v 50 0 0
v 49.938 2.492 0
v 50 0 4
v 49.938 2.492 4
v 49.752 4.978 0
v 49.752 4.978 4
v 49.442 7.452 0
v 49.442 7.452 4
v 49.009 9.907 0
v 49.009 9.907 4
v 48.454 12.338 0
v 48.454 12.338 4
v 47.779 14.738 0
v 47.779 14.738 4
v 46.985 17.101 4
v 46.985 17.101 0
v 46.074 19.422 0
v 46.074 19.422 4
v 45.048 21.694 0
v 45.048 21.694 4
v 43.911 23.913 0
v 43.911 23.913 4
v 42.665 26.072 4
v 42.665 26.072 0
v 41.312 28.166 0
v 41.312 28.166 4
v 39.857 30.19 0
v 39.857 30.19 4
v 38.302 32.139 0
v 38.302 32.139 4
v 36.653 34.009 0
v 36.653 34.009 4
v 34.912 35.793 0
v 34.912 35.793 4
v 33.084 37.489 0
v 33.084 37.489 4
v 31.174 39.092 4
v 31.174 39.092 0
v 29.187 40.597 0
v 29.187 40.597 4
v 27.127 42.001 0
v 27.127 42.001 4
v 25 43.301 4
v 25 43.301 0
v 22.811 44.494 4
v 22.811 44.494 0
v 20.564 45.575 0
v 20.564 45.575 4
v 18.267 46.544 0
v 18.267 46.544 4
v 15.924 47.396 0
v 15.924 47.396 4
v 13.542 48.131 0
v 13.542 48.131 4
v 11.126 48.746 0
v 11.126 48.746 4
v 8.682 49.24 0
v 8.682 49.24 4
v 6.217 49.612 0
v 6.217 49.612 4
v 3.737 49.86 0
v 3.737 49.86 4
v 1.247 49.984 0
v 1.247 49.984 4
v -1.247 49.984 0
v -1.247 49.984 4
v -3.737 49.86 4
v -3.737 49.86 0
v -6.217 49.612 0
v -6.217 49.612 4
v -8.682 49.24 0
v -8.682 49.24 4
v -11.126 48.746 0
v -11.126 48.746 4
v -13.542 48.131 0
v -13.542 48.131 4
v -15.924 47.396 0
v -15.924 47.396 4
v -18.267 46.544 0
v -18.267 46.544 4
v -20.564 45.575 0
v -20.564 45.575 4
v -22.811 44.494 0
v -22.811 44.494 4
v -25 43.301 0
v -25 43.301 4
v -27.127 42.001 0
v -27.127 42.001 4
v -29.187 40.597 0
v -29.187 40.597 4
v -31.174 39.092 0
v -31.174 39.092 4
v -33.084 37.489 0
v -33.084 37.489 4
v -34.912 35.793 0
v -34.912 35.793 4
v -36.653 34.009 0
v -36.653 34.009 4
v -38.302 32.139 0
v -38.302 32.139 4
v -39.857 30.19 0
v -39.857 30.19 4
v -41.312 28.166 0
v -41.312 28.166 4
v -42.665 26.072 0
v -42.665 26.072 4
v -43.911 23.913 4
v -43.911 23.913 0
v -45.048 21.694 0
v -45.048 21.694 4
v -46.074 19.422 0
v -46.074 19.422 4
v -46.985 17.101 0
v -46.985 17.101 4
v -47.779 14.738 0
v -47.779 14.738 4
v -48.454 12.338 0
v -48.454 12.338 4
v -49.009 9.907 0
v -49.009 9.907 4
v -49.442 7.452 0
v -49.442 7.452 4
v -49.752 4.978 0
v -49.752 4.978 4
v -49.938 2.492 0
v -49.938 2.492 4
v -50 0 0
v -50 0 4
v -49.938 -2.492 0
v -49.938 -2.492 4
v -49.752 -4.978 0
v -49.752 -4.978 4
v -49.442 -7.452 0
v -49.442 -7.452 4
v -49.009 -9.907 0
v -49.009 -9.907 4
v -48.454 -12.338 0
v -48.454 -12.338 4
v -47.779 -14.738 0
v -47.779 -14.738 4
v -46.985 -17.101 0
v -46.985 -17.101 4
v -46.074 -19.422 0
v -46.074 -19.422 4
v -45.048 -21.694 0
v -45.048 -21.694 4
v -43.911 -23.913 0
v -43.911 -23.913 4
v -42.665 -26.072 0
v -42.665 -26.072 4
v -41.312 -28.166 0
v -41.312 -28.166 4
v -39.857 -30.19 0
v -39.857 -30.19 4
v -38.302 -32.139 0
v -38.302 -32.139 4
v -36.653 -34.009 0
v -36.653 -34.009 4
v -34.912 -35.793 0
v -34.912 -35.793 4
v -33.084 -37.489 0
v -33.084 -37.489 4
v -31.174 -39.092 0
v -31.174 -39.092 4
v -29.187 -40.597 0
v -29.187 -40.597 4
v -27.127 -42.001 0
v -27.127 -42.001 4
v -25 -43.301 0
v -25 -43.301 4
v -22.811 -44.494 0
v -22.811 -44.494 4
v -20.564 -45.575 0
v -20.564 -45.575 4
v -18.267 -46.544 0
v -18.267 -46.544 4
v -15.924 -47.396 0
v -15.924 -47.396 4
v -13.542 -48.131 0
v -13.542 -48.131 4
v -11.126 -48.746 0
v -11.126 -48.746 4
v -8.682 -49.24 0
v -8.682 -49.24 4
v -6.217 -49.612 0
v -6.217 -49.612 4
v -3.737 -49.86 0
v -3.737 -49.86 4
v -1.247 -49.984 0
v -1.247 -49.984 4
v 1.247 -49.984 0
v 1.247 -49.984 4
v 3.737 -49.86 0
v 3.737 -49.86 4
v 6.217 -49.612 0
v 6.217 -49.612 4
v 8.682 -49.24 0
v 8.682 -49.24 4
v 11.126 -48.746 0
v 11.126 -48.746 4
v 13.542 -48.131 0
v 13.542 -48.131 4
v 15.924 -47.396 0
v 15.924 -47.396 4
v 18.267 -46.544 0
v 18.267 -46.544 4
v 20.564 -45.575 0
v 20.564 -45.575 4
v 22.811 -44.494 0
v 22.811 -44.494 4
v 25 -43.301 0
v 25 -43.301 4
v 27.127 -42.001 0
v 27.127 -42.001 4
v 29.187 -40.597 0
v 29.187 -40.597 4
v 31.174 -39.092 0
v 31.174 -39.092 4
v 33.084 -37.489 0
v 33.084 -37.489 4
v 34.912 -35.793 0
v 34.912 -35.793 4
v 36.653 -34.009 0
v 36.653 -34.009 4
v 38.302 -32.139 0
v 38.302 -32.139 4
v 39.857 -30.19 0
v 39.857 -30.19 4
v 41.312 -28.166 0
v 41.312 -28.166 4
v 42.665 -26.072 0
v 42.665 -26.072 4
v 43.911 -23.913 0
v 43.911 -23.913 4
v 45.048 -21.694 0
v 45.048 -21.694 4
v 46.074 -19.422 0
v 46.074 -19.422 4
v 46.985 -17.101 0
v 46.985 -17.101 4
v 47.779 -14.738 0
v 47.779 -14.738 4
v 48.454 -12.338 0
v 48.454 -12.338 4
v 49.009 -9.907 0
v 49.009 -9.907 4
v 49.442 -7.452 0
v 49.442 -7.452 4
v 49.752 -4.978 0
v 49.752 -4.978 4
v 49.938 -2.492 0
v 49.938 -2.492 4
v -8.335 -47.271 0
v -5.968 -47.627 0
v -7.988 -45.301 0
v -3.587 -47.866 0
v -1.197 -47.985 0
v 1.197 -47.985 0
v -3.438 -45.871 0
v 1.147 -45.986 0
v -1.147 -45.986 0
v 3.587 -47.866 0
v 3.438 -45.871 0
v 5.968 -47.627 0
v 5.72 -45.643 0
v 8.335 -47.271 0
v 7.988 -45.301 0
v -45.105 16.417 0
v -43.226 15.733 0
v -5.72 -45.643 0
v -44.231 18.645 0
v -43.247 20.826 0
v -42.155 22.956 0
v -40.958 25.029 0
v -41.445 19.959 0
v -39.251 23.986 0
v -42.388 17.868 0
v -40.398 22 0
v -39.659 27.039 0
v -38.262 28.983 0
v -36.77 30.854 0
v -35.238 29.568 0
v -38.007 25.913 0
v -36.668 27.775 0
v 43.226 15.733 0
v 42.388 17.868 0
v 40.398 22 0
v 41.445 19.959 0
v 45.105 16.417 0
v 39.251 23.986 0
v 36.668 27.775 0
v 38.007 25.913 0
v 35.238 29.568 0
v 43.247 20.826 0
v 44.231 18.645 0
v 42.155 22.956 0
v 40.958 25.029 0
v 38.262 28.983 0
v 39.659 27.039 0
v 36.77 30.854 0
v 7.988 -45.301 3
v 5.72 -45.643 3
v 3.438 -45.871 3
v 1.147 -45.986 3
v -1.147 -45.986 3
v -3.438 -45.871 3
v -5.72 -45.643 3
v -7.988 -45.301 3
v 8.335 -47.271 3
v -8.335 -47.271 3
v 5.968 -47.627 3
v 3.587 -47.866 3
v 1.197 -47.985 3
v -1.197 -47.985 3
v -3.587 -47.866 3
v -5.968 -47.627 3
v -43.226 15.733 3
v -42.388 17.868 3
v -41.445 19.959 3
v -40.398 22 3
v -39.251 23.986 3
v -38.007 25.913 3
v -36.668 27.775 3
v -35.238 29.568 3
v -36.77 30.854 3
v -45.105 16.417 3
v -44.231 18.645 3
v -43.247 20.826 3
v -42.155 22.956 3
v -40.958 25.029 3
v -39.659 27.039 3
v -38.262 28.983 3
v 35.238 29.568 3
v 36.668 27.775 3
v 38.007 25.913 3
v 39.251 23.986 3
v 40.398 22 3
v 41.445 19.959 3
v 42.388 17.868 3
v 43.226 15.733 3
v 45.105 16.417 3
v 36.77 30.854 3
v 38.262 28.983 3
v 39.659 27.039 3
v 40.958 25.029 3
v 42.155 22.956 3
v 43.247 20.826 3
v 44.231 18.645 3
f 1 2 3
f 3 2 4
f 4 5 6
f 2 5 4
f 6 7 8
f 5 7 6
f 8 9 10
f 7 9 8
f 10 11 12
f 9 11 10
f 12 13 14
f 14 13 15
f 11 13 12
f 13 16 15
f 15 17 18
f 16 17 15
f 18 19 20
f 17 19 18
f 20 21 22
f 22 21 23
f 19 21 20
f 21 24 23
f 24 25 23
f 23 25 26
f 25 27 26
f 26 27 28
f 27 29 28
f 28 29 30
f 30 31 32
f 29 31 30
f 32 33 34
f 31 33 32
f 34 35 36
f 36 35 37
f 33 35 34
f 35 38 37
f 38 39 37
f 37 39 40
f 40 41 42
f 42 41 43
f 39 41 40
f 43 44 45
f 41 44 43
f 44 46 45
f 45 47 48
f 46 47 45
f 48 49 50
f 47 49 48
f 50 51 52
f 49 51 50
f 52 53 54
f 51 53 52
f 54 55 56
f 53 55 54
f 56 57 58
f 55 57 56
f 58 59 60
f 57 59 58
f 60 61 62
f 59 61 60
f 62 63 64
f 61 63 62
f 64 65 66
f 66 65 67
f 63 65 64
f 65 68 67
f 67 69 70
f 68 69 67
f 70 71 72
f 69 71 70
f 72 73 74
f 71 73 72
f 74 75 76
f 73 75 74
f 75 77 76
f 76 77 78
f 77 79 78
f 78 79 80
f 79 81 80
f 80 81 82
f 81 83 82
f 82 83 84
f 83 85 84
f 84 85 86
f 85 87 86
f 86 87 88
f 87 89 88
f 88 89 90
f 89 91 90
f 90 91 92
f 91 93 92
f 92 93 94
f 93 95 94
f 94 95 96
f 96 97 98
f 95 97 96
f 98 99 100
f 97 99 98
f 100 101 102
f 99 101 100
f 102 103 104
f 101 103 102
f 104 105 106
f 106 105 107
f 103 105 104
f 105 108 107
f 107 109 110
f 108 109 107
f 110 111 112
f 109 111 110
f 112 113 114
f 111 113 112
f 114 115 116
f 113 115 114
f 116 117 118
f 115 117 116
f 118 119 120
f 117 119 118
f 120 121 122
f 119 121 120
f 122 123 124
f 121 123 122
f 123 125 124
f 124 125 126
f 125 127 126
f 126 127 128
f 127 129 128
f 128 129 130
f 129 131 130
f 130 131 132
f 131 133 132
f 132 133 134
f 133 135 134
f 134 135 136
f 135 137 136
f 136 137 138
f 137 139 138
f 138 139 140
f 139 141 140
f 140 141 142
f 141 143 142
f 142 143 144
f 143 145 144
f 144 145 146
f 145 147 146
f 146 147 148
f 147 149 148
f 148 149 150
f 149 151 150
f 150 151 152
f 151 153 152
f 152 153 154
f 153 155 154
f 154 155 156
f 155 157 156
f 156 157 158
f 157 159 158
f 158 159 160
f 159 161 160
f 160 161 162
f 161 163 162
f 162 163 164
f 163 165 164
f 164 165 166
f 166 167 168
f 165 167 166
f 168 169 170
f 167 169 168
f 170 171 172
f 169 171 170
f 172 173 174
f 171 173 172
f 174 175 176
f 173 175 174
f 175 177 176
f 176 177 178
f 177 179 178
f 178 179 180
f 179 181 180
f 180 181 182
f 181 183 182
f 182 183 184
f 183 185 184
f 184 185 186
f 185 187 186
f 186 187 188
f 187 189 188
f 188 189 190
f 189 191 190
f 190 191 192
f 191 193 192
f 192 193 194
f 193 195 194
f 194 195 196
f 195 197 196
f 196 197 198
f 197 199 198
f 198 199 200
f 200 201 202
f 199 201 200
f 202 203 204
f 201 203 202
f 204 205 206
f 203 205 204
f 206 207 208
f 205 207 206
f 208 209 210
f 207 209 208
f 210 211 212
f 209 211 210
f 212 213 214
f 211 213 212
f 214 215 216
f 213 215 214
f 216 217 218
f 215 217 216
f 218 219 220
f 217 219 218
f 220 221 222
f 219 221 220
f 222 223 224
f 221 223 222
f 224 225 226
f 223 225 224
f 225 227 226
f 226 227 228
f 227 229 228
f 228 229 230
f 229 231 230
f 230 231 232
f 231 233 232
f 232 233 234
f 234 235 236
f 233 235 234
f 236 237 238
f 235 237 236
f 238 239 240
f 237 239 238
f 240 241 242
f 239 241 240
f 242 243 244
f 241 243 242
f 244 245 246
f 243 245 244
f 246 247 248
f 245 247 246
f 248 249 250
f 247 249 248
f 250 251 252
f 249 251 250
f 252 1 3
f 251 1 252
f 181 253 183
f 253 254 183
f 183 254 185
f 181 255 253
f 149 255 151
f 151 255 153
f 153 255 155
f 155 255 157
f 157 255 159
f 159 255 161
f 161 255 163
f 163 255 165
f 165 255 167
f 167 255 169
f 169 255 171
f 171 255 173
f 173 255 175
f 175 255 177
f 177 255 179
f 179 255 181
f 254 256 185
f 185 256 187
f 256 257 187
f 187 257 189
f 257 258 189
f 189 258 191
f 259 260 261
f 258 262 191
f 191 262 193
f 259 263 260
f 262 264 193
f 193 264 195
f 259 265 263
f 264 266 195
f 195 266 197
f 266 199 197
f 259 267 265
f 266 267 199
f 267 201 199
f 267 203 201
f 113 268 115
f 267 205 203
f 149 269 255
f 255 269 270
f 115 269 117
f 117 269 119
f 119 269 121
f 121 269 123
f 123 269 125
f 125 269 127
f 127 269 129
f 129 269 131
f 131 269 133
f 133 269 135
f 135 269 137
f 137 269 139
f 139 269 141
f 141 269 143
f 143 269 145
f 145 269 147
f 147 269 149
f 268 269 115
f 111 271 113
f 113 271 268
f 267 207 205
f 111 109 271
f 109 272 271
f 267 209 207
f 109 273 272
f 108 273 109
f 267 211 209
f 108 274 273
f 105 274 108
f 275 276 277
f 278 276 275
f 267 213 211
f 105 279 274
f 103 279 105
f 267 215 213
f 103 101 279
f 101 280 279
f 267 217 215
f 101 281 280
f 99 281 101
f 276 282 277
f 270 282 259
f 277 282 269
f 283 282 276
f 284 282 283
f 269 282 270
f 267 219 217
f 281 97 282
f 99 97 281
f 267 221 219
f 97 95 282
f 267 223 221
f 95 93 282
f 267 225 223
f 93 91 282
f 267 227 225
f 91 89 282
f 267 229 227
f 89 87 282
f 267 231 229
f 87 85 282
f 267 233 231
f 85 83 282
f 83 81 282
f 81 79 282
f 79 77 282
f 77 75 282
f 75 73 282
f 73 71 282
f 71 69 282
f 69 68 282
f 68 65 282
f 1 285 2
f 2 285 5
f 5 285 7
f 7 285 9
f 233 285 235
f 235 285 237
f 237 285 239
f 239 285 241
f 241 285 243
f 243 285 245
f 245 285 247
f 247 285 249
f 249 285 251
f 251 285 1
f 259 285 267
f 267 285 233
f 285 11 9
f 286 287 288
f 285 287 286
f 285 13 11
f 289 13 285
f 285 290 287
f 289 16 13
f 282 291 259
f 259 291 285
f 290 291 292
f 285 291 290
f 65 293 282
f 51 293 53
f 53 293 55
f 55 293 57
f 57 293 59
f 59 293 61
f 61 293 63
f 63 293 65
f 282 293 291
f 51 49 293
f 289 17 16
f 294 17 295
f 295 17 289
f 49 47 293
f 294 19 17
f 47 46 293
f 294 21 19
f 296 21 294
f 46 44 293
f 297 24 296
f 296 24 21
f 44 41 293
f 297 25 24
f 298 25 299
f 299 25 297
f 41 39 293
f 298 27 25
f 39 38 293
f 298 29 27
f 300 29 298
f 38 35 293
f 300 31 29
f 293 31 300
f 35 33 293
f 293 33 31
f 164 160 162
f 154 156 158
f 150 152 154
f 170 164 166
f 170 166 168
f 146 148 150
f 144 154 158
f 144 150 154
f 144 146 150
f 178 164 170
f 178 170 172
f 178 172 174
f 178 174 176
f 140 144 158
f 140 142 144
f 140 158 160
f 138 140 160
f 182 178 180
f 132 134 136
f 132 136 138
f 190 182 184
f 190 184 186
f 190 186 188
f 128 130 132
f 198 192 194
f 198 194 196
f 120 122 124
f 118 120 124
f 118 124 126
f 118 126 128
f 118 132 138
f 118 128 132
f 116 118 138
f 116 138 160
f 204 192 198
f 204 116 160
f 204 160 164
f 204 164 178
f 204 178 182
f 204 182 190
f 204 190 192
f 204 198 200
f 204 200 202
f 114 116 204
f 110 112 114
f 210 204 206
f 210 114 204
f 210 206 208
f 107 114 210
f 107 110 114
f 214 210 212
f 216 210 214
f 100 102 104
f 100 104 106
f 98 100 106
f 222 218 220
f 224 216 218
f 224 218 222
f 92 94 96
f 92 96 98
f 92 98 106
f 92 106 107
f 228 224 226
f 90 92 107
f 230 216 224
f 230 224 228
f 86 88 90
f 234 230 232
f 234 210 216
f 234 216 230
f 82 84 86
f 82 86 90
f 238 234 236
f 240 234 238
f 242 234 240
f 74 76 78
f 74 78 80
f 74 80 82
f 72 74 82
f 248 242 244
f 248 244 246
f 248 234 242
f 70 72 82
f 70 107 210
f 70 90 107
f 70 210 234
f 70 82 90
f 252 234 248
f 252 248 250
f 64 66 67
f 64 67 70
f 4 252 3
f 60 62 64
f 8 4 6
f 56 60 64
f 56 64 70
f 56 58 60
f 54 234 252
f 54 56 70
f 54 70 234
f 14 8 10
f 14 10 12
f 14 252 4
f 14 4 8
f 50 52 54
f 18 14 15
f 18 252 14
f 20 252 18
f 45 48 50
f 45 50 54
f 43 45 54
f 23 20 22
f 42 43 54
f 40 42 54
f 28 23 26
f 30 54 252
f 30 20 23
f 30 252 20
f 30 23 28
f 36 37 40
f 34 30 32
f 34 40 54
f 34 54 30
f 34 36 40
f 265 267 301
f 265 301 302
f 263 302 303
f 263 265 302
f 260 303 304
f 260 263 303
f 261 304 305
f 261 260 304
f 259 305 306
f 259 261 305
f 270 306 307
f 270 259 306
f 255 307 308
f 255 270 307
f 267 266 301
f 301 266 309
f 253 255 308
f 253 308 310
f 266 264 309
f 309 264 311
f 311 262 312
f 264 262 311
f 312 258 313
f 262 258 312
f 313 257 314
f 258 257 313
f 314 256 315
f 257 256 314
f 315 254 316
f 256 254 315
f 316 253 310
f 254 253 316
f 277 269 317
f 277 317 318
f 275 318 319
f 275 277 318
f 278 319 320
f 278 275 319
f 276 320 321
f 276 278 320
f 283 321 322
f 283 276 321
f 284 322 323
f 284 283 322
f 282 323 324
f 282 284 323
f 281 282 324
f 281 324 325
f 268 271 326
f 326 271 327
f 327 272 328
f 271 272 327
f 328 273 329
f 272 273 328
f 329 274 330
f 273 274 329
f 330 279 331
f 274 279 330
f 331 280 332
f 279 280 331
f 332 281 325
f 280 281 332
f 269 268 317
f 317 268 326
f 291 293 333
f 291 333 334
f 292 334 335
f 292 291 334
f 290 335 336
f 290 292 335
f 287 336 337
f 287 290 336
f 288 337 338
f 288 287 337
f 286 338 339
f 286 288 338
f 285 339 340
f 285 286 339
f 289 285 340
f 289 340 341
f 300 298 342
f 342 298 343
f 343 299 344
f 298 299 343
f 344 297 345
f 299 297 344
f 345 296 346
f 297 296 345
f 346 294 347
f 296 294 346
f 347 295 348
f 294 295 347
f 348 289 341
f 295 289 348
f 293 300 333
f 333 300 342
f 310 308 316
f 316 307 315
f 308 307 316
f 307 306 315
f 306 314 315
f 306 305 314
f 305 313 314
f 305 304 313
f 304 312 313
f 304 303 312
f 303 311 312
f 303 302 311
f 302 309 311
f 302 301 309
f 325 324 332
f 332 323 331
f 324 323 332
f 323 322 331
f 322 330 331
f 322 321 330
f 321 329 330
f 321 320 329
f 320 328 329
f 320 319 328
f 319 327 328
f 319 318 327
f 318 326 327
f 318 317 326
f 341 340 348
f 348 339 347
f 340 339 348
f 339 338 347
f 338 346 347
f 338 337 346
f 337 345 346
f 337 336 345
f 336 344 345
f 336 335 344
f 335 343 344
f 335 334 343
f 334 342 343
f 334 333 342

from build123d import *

# Parameters (mm, degrees)
SKETCH_R           = 50
PAD_DEPTH          = 4
POCKET_DEPTH       = 3
POLARPATTERN_COUNT = 3


with BuildPart() as part:
    # Sketch → Pad (new body)
    with BuildSketch(Plane.XY):
        Circle(SKETCH_R)
    extrude(amount=PAD_DEPTH)

    # Sketch001 → Pocket (cut)
    with BuildSketch(Plane(origin=(0, 0, 0), x_dir=(-1, 0, 0), z_dir=(0, 0, -1))):
        with BuildLine():
            ThreePointArc((-7.987816, -45.301157), (0, -46), (7.987816, -45.301157))
            Line((7.987816, -45.301157), (8.335113, -47.270772))
            ThreePointArc((-8.335113, -47.270772), (0, -48), (8.335113, -47.270772))
            Line((-7.987816, -45.301157), (-8.335113, -47.270772))
        make_face()
    pocket = extrude(amount=-POCKET_DEPTH, mode=Mode.SUBTRACT)

    # PolarPattern: Pocket ×3 about axis
    polarpattern_axis = Axis((0, 0, 0), (0, 0, -1))
    for i in range(1, POLARPATTERN_COUNT):
        add(pocket.rotate(polarpattern_axis, i * 360 / POLARPATTERN_COUNT), mode=Mode.SUBTRACT)


solid = part.part
